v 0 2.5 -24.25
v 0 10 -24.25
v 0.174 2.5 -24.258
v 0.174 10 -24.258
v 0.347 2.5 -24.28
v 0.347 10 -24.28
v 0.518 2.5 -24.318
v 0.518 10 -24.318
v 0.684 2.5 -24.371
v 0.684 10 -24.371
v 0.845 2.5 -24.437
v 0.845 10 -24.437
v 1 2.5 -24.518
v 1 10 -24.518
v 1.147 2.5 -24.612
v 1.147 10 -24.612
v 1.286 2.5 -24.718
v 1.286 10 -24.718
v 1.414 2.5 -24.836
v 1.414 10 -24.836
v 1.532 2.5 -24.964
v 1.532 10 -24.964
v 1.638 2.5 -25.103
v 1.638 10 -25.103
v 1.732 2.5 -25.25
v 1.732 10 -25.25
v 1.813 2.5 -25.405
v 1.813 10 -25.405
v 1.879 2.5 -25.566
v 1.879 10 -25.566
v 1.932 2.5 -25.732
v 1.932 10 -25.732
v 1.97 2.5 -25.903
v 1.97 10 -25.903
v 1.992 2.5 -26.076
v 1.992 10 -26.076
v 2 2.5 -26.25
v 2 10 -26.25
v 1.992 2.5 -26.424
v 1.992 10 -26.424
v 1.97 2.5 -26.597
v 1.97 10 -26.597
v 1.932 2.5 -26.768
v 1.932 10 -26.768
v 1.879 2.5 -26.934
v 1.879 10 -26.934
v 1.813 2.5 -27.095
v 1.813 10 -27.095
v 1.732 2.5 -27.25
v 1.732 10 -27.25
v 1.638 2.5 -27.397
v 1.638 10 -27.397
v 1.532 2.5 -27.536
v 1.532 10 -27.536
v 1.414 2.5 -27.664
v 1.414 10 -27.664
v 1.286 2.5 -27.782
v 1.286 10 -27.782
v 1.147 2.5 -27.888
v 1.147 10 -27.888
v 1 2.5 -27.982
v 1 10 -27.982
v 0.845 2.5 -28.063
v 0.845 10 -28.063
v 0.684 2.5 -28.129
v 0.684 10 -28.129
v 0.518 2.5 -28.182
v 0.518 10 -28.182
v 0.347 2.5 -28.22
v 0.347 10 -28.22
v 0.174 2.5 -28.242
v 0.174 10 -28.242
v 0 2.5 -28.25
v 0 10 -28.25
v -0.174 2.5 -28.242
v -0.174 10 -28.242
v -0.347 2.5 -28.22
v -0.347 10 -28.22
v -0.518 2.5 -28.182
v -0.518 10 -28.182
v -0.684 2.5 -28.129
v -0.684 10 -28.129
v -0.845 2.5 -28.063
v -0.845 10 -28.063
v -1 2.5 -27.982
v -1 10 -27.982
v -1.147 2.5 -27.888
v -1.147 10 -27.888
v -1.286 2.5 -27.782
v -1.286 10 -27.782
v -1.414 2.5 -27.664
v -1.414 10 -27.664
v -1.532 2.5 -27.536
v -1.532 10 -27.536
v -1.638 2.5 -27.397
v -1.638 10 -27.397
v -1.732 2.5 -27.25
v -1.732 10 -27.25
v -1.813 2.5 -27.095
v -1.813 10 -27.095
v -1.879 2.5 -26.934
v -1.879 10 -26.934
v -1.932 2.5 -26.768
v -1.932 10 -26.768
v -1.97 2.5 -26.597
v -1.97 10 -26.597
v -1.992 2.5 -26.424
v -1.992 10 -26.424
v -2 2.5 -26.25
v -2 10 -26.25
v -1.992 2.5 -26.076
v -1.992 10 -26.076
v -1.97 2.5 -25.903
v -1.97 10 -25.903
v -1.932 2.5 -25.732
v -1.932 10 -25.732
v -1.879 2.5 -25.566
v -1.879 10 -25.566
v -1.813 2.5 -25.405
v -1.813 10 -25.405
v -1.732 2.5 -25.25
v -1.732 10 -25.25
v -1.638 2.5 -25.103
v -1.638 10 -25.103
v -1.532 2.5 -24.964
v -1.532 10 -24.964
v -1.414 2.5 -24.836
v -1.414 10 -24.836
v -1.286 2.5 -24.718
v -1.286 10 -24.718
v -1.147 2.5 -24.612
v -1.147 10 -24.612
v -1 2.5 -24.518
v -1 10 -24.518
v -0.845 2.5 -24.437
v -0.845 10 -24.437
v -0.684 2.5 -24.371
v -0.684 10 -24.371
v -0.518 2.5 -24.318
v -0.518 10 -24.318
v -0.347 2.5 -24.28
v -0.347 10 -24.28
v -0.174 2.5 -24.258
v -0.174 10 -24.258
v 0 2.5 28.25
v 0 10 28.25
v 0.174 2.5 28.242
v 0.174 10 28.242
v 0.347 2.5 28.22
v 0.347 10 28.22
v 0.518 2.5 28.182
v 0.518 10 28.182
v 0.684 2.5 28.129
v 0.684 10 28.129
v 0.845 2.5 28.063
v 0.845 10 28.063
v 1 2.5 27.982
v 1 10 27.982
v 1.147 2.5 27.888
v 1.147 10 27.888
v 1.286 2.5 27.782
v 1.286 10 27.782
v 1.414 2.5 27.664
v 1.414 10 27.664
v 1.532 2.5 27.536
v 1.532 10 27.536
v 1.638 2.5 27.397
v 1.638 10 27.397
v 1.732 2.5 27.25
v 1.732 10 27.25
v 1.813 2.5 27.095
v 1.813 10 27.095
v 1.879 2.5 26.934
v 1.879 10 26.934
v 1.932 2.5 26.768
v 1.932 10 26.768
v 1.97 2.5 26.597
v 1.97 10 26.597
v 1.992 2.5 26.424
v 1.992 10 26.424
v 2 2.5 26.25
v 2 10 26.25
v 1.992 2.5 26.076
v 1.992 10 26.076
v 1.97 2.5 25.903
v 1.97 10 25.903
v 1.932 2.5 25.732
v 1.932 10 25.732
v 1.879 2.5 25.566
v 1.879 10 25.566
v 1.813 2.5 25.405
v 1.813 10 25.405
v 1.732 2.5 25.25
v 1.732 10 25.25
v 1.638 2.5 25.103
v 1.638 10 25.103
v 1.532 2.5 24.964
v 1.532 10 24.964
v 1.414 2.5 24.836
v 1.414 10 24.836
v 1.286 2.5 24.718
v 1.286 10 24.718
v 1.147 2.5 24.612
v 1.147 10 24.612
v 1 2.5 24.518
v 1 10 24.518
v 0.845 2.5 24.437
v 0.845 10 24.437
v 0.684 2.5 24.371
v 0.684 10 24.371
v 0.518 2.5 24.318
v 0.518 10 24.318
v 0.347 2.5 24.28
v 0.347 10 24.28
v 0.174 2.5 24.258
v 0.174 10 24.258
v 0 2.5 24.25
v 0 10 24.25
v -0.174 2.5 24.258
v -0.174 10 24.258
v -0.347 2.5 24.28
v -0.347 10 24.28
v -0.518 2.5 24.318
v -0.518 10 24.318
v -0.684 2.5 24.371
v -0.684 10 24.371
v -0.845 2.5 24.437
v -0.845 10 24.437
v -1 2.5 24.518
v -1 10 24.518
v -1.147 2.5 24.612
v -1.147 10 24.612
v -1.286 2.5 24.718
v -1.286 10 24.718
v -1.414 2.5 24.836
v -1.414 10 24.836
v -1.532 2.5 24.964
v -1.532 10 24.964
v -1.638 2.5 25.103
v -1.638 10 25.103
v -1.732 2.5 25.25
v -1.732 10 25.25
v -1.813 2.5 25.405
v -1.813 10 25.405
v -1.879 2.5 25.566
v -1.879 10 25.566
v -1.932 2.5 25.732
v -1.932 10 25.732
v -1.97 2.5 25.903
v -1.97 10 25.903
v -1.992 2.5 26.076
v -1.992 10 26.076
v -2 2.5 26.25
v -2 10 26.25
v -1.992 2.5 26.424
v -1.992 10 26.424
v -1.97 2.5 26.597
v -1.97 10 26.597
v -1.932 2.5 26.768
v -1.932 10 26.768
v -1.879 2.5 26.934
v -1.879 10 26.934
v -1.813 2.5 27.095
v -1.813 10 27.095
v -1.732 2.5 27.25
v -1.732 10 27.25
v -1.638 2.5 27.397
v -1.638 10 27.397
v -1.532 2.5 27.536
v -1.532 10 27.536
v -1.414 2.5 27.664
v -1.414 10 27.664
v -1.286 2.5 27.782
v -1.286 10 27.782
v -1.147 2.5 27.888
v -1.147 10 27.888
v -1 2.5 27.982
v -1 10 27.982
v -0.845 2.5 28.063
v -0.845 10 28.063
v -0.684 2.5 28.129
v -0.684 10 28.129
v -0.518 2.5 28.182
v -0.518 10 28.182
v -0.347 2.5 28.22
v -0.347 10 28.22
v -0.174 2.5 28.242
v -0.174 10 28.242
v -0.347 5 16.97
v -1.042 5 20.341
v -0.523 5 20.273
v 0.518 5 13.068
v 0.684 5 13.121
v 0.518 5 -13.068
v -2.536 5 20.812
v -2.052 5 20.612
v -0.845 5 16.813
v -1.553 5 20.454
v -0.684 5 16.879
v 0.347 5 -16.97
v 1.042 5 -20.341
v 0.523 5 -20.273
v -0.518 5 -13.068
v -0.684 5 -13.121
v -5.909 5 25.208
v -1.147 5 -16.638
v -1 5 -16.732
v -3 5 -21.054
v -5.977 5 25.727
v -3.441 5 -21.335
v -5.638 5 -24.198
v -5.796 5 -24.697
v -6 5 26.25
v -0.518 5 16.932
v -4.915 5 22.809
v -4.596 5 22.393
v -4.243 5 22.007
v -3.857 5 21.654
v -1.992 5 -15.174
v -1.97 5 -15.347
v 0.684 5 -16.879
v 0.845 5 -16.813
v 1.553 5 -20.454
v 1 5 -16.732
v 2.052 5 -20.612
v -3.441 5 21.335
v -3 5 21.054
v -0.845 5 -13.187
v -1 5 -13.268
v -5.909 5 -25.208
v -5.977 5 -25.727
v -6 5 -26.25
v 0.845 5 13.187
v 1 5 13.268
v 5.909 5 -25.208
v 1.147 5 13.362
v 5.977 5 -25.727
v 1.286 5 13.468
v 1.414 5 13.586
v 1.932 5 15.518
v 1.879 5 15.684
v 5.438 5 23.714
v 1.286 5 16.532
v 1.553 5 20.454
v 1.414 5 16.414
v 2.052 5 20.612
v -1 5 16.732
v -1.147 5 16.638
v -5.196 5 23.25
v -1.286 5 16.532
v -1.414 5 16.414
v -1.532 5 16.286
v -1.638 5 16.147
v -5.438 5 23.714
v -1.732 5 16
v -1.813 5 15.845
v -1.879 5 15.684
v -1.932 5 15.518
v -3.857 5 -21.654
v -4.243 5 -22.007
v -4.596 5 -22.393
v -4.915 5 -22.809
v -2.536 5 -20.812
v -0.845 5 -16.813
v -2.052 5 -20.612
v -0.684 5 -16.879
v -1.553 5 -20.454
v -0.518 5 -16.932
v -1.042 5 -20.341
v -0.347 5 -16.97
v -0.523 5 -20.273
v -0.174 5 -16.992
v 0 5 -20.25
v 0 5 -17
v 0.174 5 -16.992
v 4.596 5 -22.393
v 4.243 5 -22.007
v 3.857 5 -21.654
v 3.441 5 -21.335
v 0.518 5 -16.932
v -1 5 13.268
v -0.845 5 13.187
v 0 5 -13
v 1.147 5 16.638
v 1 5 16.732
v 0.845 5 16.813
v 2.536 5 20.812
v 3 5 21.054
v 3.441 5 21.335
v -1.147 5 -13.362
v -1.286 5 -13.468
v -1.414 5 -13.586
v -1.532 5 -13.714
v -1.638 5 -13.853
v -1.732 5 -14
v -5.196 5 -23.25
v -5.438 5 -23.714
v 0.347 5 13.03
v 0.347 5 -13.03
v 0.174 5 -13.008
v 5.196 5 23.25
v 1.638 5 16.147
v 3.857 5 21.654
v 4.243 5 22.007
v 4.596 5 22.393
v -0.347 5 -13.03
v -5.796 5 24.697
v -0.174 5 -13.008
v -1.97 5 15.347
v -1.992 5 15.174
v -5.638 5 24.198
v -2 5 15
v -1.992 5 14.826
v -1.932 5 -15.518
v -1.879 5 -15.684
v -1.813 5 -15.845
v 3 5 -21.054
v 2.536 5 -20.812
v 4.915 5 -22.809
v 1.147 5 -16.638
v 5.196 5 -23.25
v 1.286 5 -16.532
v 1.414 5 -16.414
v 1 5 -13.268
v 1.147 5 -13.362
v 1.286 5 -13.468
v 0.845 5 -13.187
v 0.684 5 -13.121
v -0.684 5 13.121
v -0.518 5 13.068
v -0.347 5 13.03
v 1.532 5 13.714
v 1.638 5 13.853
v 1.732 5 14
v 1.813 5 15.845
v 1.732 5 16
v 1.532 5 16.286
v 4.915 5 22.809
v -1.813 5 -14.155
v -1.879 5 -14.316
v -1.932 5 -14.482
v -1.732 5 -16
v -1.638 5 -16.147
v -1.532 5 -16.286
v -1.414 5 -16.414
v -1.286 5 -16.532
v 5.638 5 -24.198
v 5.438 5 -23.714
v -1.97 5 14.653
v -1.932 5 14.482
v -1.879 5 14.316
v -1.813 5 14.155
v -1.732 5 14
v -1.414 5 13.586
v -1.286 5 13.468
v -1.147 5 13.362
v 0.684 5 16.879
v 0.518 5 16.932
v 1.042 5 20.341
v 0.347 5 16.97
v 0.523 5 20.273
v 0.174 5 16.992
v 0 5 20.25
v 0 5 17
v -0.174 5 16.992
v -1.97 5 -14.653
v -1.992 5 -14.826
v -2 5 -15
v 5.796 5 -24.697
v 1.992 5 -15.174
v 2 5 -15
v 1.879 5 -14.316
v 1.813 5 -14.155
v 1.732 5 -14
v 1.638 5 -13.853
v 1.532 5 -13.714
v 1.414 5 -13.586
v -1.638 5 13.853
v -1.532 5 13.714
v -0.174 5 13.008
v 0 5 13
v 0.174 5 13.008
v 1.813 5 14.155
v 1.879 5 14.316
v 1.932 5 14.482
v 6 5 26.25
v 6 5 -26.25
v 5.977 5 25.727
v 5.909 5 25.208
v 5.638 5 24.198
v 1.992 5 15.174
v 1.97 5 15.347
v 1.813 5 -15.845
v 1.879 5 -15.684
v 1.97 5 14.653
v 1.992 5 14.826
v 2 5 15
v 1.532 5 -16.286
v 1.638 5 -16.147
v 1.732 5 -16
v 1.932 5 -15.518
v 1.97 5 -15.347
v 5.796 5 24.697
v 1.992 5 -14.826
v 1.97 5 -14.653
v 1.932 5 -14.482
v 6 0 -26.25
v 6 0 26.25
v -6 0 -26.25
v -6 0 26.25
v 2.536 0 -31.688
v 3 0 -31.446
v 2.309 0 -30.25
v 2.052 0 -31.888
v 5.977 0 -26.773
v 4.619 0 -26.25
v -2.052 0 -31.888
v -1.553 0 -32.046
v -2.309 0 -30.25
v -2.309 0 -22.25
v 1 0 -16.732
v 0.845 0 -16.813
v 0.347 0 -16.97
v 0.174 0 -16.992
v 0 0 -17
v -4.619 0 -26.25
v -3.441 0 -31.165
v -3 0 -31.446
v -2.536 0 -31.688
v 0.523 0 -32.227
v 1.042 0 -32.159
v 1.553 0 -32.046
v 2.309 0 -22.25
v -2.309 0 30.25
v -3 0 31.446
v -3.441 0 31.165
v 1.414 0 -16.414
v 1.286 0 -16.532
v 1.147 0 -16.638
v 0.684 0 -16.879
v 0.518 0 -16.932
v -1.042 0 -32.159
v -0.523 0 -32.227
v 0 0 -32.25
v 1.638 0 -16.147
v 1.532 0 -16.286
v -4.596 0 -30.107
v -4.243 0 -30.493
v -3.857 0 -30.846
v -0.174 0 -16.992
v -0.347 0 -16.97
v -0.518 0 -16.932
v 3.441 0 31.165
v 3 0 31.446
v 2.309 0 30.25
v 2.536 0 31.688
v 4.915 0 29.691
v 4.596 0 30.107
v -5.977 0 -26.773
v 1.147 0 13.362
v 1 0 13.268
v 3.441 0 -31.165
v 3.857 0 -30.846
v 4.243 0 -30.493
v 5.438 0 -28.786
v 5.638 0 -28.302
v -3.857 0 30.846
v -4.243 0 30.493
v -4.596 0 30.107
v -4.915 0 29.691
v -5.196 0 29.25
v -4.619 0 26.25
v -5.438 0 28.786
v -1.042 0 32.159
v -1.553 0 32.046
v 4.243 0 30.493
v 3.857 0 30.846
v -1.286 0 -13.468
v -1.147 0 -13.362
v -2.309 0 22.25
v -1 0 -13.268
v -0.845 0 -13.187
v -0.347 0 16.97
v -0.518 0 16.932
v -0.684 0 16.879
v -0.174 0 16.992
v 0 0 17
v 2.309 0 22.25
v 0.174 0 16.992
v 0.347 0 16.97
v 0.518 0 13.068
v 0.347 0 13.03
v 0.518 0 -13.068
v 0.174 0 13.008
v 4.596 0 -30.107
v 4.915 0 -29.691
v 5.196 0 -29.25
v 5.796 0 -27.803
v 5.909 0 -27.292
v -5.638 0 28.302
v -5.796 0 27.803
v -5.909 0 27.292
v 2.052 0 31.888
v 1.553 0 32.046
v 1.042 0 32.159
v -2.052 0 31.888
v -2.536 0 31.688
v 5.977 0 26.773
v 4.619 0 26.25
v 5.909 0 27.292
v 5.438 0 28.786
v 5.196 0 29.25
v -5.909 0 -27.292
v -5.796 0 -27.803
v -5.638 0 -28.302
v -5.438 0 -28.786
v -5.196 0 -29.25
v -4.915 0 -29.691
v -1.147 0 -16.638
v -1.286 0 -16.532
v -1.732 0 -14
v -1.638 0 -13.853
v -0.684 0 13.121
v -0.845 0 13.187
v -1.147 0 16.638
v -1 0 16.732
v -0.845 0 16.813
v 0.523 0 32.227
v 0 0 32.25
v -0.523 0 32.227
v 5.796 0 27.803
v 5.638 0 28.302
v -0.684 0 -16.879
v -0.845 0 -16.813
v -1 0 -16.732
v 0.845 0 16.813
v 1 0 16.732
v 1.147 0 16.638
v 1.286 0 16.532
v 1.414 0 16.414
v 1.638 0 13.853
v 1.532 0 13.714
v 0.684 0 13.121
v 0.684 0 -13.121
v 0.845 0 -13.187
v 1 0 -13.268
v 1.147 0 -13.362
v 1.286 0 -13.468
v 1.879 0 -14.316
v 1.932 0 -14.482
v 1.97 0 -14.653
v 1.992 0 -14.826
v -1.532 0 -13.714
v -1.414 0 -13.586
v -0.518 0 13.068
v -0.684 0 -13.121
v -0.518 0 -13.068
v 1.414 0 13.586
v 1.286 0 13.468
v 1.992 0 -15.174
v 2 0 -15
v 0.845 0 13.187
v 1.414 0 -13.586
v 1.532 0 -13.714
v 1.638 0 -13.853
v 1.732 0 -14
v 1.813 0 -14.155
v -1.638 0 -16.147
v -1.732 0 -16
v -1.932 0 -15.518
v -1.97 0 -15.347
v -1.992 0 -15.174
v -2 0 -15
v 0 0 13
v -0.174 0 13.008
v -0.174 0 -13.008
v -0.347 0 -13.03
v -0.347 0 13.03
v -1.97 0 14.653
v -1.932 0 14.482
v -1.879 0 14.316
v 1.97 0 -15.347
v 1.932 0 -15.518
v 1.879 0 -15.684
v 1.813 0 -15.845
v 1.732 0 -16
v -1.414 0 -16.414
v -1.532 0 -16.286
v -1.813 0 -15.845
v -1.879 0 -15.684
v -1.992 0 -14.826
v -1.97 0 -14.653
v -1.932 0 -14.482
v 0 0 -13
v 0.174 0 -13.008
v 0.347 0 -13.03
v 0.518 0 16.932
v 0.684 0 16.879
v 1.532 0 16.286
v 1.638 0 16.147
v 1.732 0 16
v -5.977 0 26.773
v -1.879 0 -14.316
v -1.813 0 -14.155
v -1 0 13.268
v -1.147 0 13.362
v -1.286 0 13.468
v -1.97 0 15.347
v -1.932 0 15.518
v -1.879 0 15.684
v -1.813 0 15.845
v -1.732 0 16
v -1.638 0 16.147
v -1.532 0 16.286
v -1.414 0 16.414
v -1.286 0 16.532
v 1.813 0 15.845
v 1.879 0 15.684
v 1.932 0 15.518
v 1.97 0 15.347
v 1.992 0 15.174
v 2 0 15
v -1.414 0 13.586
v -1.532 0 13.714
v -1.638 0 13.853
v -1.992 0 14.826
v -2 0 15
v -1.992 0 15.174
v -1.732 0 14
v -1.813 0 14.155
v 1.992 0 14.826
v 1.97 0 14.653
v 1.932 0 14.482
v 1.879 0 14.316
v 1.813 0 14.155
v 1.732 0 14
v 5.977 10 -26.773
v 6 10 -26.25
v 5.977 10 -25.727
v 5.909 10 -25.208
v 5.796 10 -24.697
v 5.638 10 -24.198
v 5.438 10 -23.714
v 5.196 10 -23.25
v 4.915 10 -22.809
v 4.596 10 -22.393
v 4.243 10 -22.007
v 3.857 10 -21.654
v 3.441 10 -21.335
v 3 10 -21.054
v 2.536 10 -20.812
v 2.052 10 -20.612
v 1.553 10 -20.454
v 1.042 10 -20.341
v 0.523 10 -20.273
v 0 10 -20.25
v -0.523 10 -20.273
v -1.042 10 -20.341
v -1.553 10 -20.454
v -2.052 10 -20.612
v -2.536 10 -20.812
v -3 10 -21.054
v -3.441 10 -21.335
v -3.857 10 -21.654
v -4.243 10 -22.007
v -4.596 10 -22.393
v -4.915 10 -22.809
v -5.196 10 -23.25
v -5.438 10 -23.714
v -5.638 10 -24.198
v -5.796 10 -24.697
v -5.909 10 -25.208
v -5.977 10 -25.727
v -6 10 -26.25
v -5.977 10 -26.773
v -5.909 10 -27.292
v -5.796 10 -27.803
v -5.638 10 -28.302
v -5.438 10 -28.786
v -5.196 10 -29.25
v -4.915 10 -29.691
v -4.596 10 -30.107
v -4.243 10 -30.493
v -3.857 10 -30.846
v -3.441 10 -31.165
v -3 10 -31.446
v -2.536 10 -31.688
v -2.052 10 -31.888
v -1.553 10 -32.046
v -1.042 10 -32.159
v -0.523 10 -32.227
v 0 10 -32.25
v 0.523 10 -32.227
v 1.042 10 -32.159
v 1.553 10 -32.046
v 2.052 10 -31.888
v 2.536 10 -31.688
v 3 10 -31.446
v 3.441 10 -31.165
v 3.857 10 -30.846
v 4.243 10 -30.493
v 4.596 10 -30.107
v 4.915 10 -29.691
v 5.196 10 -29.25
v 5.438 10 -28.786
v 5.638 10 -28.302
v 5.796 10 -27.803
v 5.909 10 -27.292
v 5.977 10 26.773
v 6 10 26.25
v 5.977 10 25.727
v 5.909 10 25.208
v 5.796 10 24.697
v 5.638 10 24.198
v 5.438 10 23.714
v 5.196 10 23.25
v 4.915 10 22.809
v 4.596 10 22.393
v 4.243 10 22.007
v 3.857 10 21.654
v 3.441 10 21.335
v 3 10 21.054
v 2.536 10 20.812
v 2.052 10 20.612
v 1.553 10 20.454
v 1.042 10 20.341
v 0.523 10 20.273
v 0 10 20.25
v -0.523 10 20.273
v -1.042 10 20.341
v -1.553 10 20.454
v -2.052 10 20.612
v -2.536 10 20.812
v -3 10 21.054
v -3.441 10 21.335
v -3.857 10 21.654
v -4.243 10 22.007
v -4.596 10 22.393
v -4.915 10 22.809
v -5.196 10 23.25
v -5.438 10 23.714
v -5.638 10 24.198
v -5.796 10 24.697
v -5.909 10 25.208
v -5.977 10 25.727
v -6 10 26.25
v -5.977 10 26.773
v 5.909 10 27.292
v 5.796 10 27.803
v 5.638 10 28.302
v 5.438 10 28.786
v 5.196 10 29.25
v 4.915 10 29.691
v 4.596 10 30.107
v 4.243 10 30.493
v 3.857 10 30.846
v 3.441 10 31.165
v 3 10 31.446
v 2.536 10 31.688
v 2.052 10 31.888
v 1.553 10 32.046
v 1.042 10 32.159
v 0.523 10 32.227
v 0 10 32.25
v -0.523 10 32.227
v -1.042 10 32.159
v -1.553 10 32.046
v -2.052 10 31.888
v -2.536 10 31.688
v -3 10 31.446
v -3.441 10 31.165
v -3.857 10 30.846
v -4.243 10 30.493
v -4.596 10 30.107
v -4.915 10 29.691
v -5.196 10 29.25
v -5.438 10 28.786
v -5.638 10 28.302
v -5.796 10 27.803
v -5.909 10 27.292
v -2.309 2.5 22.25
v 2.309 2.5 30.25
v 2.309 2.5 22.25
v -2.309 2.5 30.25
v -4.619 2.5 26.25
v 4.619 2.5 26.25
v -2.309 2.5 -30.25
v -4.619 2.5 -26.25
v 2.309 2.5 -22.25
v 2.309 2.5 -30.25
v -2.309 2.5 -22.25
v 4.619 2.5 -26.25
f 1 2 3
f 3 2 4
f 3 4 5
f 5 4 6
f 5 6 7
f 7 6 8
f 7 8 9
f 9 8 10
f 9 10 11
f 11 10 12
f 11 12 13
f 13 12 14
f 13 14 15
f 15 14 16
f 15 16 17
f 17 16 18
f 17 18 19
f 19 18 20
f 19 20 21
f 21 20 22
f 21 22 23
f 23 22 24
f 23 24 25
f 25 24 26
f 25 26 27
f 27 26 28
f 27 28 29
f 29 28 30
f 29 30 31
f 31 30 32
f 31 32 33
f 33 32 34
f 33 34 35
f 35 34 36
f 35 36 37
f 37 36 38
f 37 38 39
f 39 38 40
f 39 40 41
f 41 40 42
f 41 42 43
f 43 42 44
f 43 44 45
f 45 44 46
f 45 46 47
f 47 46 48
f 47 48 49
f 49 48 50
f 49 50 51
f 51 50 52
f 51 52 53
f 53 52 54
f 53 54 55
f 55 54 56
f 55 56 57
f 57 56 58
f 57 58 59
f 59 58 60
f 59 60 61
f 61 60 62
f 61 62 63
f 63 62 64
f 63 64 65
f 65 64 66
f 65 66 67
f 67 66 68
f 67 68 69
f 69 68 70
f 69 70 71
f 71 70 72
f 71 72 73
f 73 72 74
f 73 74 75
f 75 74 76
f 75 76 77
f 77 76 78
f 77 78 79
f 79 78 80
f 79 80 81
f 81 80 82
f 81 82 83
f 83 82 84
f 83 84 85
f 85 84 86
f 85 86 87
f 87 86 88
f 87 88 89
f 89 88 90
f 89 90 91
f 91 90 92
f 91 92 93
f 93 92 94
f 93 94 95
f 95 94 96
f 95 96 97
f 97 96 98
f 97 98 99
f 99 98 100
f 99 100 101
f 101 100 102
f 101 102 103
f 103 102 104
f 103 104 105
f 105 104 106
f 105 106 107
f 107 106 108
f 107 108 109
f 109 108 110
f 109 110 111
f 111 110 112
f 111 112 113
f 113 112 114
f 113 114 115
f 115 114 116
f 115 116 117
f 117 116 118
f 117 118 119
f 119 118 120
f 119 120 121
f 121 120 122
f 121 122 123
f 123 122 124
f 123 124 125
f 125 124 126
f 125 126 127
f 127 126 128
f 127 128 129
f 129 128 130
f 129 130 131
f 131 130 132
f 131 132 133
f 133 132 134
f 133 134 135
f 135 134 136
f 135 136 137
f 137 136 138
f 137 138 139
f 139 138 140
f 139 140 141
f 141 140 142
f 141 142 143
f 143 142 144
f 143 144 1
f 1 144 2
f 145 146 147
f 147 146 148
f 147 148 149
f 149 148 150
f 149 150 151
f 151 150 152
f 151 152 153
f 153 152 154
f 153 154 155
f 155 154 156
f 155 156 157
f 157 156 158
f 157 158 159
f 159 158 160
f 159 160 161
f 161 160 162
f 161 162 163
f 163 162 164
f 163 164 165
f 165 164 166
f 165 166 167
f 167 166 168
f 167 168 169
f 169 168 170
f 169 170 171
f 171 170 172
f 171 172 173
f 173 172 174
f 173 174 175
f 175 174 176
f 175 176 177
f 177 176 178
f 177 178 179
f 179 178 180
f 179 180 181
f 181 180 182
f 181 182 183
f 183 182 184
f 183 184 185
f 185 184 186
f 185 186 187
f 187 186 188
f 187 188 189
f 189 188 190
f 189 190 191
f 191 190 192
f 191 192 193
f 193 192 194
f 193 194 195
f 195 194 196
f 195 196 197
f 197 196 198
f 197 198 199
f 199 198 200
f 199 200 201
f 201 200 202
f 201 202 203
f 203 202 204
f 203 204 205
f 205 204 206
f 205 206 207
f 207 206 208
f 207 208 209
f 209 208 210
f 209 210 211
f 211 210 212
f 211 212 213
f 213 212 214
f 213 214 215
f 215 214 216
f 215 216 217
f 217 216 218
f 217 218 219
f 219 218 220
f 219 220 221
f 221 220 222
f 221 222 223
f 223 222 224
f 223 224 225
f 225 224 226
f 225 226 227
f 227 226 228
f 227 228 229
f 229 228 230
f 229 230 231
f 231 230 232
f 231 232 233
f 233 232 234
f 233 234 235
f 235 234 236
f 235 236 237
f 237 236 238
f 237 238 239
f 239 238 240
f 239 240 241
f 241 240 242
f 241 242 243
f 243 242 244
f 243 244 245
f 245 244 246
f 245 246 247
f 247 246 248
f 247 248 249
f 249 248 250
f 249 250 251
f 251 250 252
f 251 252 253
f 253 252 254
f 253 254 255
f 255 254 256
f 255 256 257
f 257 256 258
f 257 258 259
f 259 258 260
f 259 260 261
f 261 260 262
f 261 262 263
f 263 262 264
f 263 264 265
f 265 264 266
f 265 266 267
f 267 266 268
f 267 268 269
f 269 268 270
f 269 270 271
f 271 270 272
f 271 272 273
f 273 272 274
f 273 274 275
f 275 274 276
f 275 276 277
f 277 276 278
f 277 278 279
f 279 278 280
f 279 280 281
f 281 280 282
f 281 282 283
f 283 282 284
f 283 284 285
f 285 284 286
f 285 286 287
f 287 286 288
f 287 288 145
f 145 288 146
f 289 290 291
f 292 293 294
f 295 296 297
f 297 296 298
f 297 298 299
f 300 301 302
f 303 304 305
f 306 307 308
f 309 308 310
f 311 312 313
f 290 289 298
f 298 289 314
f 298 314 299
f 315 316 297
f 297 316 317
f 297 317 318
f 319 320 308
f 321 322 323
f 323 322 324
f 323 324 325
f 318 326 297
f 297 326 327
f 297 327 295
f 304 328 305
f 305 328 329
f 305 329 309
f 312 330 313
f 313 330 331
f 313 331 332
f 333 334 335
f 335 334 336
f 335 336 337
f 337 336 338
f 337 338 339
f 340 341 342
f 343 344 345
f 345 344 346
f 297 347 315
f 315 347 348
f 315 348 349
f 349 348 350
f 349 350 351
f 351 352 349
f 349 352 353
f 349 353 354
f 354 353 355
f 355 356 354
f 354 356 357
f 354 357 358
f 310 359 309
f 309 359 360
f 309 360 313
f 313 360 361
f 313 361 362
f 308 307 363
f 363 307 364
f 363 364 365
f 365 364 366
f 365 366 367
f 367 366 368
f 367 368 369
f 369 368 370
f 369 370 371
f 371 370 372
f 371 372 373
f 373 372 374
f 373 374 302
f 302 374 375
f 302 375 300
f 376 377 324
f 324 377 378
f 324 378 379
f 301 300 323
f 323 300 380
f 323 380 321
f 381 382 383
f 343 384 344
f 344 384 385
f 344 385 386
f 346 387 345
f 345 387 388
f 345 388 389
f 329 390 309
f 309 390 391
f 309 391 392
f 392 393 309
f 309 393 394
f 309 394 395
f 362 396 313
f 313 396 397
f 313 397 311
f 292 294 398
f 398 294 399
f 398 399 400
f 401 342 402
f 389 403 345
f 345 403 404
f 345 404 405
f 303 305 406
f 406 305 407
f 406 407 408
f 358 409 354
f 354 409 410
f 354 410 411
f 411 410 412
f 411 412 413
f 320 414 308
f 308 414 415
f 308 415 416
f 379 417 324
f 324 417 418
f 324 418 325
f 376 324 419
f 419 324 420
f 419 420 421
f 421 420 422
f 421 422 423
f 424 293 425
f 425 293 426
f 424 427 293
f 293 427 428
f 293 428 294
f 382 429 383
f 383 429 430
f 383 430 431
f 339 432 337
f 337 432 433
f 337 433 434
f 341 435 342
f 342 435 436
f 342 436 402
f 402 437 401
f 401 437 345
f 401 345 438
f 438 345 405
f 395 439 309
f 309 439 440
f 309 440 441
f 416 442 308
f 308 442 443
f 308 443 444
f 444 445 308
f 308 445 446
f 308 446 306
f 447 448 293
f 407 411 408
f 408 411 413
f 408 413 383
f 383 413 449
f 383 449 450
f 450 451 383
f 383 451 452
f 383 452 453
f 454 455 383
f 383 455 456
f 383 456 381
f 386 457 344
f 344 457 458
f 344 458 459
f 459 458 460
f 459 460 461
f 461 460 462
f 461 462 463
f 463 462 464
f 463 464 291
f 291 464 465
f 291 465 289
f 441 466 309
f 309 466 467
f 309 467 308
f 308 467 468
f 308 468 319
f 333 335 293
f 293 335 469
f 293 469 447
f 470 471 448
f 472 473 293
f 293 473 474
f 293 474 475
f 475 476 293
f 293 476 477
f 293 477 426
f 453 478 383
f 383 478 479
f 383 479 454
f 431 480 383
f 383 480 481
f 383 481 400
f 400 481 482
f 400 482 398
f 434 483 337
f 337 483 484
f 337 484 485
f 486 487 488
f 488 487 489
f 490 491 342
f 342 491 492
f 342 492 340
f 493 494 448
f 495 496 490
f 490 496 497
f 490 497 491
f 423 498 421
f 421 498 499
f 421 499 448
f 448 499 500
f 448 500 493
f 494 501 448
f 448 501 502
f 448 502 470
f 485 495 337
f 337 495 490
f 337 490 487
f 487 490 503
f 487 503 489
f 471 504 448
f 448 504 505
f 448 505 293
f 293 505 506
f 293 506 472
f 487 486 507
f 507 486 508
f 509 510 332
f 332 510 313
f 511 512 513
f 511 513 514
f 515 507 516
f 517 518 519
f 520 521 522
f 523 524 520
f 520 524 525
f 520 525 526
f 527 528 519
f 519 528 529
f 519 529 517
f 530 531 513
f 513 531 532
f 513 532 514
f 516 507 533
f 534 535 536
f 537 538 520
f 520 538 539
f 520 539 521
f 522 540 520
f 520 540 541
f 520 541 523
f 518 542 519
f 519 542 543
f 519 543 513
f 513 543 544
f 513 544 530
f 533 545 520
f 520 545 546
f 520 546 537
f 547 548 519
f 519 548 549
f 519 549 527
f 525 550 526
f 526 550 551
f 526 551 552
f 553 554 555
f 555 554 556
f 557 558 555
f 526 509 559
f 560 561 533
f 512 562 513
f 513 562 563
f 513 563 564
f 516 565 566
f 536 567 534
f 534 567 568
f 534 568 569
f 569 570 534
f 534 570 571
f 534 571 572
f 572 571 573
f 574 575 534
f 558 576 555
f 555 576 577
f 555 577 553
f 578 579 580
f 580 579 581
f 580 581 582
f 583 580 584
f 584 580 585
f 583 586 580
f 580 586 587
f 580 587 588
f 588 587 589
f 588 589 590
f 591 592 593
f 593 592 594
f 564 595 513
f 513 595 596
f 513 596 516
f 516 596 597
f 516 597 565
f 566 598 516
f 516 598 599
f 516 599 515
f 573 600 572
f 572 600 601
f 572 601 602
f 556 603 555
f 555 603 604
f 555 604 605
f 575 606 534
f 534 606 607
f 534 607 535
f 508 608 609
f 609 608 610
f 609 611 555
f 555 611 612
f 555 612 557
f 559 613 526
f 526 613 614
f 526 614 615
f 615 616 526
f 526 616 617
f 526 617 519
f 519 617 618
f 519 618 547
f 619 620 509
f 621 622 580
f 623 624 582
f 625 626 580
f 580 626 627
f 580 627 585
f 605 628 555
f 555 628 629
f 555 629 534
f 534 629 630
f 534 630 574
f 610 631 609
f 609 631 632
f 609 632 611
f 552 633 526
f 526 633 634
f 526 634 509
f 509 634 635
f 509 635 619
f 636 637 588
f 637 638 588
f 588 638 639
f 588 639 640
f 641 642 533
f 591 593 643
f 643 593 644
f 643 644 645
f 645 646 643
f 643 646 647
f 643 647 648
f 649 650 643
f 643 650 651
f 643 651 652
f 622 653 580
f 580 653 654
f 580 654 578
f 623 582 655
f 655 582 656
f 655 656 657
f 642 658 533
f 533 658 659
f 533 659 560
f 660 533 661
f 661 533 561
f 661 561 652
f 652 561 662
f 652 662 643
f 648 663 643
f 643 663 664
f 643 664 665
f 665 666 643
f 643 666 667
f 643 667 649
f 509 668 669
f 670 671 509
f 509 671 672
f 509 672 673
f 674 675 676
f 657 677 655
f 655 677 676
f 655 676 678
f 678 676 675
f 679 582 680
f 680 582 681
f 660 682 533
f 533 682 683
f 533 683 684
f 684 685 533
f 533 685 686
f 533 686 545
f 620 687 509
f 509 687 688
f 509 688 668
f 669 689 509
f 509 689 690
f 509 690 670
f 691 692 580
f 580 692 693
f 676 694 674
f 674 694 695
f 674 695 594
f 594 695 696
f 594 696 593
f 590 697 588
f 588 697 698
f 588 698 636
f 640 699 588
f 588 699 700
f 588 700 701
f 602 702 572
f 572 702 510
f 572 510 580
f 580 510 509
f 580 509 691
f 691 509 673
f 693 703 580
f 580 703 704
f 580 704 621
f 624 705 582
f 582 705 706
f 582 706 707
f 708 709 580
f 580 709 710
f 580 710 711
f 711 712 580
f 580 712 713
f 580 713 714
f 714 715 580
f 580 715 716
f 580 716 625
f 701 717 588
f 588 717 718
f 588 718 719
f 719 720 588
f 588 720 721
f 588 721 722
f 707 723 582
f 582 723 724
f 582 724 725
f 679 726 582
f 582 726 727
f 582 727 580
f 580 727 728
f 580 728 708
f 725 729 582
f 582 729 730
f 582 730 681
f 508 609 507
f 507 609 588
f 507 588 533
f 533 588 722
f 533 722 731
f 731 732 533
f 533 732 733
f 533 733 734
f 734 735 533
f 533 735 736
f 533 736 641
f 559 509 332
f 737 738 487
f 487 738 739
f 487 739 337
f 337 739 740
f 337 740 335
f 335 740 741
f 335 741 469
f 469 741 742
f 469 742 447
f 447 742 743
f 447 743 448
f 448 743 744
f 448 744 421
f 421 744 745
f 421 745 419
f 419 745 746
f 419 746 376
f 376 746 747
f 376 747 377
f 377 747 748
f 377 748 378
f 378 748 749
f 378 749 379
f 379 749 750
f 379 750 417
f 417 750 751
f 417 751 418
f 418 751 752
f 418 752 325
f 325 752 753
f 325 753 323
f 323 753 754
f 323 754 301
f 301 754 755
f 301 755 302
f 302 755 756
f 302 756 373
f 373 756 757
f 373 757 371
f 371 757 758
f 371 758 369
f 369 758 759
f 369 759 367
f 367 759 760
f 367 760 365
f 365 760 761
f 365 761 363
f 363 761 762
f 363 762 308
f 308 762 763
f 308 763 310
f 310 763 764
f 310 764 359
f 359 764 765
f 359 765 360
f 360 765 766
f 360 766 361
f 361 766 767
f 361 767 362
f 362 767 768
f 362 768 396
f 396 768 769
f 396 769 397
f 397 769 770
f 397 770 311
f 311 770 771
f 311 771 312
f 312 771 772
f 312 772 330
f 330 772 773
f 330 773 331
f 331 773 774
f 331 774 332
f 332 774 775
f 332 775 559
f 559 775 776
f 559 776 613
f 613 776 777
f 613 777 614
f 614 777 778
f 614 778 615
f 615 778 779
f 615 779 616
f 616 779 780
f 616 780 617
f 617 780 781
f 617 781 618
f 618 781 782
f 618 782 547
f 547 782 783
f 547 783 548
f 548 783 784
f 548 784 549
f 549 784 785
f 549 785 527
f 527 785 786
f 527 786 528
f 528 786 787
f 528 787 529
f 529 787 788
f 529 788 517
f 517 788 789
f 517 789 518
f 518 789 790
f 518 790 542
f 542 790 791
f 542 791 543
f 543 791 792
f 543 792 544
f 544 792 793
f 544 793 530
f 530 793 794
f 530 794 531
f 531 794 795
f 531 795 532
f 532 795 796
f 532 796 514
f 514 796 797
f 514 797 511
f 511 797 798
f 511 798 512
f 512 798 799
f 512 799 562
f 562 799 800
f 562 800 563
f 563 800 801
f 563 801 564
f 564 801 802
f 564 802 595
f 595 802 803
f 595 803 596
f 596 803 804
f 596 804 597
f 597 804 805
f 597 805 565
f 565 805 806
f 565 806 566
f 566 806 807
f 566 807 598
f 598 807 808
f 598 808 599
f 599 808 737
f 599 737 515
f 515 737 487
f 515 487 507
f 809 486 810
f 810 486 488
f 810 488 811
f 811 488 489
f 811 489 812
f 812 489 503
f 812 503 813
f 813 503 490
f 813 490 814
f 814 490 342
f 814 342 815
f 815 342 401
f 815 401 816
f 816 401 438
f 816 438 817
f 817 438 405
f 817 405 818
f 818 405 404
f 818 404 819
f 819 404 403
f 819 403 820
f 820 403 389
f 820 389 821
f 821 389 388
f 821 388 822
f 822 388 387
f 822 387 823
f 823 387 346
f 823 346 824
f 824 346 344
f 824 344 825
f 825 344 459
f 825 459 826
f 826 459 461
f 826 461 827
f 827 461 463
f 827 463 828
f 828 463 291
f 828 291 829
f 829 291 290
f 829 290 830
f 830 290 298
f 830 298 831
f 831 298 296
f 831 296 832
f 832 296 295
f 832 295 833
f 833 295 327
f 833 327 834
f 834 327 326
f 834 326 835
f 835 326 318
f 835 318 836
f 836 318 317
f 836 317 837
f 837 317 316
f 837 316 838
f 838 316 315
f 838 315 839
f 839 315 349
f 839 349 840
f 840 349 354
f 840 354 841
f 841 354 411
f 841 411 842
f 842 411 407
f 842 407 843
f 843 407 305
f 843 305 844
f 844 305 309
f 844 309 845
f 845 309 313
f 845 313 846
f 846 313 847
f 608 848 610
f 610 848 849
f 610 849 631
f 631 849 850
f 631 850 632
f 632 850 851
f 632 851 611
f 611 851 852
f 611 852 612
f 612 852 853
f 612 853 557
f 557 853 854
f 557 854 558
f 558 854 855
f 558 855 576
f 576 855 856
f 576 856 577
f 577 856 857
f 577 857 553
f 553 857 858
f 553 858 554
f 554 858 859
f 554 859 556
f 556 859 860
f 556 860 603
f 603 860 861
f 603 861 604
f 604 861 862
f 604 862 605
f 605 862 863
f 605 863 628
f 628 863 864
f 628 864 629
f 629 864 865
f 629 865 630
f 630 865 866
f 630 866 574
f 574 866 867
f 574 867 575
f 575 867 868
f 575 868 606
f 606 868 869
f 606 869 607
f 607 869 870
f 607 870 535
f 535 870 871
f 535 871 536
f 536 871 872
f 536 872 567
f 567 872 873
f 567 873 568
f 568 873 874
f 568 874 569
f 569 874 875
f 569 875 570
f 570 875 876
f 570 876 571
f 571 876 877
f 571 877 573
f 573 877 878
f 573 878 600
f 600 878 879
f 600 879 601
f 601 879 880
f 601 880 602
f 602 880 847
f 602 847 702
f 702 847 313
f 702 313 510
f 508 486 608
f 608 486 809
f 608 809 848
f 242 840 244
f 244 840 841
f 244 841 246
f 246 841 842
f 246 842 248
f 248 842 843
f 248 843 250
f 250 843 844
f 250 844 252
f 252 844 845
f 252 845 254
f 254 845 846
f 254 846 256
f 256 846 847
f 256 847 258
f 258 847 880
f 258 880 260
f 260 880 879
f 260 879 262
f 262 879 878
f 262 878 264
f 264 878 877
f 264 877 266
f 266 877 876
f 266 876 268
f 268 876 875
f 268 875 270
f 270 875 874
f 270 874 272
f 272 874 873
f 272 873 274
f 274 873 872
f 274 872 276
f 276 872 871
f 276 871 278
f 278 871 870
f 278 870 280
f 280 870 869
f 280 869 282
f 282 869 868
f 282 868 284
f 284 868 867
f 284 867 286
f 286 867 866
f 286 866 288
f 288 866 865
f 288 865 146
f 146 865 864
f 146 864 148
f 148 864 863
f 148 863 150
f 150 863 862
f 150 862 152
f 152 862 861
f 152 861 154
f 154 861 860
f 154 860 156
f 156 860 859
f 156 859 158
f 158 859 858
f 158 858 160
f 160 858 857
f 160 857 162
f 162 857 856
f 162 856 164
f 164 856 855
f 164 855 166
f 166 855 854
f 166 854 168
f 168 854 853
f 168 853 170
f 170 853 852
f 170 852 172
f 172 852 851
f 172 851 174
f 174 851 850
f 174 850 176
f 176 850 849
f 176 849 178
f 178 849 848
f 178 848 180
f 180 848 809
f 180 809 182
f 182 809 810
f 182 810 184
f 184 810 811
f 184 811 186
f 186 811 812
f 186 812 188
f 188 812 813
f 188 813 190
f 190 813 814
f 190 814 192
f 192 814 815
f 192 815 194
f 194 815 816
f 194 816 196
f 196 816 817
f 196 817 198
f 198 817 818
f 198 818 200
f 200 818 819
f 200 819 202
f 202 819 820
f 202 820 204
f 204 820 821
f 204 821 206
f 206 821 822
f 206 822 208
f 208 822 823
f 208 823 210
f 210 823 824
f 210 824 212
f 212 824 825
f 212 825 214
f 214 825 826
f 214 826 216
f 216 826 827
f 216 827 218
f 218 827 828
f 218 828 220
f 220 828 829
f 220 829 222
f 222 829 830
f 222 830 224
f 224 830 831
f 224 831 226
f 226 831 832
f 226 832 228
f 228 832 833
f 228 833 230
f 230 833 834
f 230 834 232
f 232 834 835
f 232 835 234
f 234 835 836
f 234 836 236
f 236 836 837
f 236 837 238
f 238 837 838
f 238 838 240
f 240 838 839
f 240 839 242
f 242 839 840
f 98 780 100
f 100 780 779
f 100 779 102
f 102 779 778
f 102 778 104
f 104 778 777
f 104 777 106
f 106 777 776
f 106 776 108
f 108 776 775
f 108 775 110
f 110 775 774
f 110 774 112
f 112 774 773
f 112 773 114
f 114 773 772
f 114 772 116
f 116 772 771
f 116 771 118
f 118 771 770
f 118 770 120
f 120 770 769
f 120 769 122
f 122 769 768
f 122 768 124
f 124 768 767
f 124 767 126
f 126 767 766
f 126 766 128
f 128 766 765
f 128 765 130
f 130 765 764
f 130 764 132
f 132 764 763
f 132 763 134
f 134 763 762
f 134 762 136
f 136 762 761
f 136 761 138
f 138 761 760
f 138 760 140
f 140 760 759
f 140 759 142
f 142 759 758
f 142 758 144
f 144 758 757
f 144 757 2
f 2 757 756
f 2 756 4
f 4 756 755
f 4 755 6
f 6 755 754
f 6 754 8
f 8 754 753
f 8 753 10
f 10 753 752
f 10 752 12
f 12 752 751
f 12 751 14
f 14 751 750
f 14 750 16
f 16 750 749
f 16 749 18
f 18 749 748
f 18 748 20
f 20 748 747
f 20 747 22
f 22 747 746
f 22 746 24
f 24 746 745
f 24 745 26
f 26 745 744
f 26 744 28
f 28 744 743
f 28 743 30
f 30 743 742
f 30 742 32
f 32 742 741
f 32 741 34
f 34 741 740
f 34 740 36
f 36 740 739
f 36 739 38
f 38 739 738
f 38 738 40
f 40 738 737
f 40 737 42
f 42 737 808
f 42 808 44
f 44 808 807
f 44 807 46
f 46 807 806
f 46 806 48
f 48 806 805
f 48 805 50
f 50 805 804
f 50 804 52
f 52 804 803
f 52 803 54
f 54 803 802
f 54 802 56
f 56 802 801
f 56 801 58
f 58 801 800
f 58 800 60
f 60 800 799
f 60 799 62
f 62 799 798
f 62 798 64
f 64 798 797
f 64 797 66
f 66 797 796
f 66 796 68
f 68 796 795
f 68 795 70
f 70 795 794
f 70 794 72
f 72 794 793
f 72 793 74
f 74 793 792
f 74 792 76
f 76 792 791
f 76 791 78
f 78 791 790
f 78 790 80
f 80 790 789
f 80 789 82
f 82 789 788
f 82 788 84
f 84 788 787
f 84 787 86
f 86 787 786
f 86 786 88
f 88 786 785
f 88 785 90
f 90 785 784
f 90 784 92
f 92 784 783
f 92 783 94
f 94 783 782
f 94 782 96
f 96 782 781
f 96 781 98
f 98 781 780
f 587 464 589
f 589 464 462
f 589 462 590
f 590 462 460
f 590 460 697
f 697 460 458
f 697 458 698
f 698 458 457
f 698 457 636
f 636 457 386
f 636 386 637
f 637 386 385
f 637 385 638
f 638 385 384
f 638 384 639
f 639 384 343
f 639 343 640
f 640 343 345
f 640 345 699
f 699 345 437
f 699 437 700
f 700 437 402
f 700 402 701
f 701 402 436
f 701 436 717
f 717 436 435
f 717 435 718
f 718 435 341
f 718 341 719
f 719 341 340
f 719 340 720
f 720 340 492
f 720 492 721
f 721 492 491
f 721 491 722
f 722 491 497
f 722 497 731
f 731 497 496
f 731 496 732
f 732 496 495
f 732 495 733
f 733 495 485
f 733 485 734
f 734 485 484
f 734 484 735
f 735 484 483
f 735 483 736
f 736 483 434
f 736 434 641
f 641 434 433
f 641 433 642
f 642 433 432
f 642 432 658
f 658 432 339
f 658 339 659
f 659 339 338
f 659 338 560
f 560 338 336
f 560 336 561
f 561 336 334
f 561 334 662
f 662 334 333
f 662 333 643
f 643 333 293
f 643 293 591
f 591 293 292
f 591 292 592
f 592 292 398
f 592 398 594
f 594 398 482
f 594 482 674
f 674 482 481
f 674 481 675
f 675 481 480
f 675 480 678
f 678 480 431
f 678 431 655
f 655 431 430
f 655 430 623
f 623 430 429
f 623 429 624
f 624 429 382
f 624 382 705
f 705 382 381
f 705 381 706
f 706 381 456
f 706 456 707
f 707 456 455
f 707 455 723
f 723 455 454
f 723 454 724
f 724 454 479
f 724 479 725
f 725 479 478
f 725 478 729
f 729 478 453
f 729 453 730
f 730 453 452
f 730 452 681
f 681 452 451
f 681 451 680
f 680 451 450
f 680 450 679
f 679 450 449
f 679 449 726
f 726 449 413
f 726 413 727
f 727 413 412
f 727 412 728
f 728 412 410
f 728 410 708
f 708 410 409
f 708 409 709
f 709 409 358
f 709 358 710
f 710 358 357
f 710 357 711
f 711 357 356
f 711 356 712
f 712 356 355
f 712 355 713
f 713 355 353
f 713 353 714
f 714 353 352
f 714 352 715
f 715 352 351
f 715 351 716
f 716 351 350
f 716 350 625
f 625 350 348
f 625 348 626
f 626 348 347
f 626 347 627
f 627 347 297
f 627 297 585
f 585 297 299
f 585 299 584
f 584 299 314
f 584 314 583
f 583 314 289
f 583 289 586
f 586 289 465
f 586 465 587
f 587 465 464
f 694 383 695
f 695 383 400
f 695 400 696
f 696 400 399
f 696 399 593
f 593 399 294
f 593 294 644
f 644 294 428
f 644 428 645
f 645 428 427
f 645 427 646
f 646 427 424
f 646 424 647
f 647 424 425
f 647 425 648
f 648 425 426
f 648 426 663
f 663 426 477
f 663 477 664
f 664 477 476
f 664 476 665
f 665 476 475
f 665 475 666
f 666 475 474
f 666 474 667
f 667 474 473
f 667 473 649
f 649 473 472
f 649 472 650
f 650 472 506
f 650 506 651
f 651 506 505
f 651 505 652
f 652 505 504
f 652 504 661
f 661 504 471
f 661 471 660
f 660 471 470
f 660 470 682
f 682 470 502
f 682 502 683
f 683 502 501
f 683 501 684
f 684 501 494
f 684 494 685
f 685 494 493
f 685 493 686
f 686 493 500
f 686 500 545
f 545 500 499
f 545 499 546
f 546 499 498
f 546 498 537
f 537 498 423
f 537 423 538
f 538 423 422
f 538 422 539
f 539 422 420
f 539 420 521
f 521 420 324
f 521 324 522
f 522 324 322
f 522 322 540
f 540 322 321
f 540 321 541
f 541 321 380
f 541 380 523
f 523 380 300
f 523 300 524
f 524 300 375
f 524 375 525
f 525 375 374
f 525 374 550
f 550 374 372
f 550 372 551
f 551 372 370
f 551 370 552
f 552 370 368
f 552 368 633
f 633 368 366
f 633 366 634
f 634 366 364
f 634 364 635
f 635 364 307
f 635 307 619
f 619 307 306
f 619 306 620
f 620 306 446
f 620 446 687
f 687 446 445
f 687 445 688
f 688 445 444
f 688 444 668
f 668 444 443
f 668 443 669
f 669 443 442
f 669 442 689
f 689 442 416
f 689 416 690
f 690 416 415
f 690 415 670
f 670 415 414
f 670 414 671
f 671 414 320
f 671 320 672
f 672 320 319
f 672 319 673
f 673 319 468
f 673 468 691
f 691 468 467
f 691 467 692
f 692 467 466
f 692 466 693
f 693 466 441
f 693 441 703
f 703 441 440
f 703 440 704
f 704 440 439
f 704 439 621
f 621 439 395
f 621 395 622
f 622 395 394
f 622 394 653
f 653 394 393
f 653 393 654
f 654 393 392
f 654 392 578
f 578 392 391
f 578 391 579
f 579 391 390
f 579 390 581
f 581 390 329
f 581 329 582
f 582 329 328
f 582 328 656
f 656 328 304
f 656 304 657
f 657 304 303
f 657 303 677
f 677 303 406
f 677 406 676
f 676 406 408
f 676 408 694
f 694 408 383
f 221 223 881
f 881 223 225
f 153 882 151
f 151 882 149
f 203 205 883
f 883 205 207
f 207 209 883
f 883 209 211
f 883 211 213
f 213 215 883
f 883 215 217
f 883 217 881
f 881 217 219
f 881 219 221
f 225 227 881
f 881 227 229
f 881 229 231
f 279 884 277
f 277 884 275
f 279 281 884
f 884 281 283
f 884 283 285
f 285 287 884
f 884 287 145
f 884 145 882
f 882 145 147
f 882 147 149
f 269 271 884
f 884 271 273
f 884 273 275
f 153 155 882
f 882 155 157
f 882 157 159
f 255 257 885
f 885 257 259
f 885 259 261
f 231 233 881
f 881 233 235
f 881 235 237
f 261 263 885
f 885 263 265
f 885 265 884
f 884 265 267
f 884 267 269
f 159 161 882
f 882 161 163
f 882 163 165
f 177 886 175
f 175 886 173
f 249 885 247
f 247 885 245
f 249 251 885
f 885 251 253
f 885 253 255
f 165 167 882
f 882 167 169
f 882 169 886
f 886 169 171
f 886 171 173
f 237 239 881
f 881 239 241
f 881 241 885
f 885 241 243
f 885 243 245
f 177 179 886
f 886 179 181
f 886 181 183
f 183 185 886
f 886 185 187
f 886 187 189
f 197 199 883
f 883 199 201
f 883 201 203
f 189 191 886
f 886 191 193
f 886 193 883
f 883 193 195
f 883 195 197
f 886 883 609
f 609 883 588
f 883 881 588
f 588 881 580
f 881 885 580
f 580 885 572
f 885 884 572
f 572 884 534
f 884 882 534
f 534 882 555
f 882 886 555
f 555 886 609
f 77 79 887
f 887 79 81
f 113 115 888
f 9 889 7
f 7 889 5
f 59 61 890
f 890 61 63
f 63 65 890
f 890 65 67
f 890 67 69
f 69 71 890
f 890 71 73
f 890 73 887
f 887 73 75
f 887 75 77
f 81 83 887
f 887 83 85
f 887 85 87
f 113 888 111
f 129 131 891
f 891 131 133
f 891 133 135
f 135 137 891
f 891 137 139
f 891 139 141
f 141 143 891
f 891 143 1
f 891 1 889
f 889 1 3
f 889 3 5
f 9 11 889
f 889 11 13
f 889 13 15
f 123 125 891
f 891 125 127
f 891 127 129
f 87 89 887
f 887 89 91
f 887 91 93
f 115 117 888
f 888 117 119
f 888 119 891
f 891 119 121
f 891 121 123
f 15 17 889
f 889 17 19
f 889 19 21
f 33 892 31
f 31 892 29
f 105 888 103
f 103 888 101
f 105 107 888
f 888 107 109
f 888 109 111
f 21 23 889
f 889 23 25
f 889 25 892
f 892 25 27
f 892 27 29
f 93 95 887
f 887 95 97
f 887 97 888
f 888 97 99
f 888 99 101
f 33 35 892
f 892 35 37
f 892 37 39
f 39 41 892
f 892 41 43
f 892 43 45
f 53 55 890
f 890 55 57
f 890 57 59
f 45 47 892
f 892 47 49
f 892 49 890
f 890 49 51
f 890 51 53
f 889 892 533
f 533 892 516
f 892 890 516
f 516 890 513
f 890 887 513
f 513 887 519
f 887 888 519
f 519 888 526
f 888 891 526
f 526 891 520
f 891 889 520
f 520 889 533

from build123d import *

# Parameters (mm, degrees)
SKETCH1_W           = 12
SKETCH1_H           = 64.5
BOSS_EXTRUDE1_DEPTH = 5
FILLET1_R           = 6
SKETCH2_R           = 2
CUT_EXTRUDE1_DEPTH  = 34.182261828
BOSS_EXTRUDE2_START = 5
SKETCH3_R           = 6
SKETCH3_R_2         = 2
BOSS_EXTRUDE2_DEPTH = 5
SKETCH4_R           = 2
CUT_EXTRUDE2_DEPTH  = 34.182261828
CUT_EXTRUDE3_DEPTH  = 2.5


with BuildPart() as part:
    # Sketch1 → Boss-Extrude1 (new body)
    with BuildSketch(Plane(origin=(0, 0, 0), x_dir=(1, 0, 0), z_dir=(0, 1, 0))):
        Rectangle(SKETCH1_W, SKETCH1_H)
    extrude(amount=BOSS_EXTRUDE1_DEPTH)

    # Fillet1
    fillet1_edges = [part.edges().sort_by_distance(p)[0] for p in [
        (-6, 2.5, -32.25),
        (6, 2.5, -32.25),
        (-6, 2.5, 32.25),
        (6, 2.5, 32.25),
    ]]
    fillet(fillet1_edges, radius=FILLET1_R - 0.0001)  # a hair under: the kernel refuses the full size

    # Sketch2 → Cut-Extrude1 (cut, through all)
    with BuildSketch(Plane(origin=(0, 5, 0), x_dir=(1, 0, 0), z_dir=(0, 1, 0))):
        with Locations(Location((0, -26.25, 0), (0, 0, 270))):
            Circle(SKETCH2_R)
        with Locations(Location((0, 26.25, 0), (0, 0, 270))):
            Circle(SKETCH2_R)
    extrude(amount=-CUT_EXTRUDE1_DEPTH, mode=Mode.SUBTRACT)

    # Sketch3 → Boss-Extrude2 (add)
    # profile 1 of 2: a face of its own
    with BuildSketch(Plane(origin=(0, 5, 0), x_dir=(1, 0, 0), z_dir=(0, 1, 0)).offset(BOSS_EXTRUDE2_START)):
        with Locations(Location((0, -26.25, 0), (0, 0, 270))):
            Circle(SKETCH3_R)
        with Locations(Location((0, -26.25, 0), (0, 0, 270))):
            Circle(SKETCH3_R_2, mode=Mode.SUBTRACT)
    # profile 2 of 2: a face of its own
    with BuildSketch(Plane(origin=(0, 5, 0), x_dir=(1, 0, 0), z_dir=(0, 1, 0)).offset(BOSS_EXTRUDE2_START)):
        with Locations(Location((0, 26.25, 0), (0, 0, 90))):
            Circle(SKETCH3_R)
        with Locations(Location((0, 26.25, 0), (0, 0, 270))):
            Circle(SKETCH3_R_2, mode=Mode.SUBTRACT)
    extrude(amount=-BOSS_EXTRUDE2_DEPTH)

    # Sketch4 → Cut-Extrude2 (cut, through all)
    with BuildSketch(Plane(origin=(0, 5, 0), x_dir=(1, 0, 0), z_dir=(0, 1, 0))):
        with Locations(Location((0, 15, 0), (0, 0, 270))):
            Circle(SKETCH4_R)
        with Locations(Location((0, -15, 0), (0, 0, 270))):
            Circle(SKETCH4_R)
    extrude(amount=-CUT_EXTRUDE2_DEPTH, mode=Mode.SUBTRACT)

    # Sketch5 → Cut-Extrude3 (cut)
    with BuildSketch(Plane.XZ):
        Polygon((4.618802154, 26.25), (2.309401077, 30.25), (-2.309401077, 30.25), (-4.618802154, 26.25), (-2.309401077, 22.25), (2.309401077, 22.25), align=None)
        Polygon((2.309401077, -22.25), (-2.309401077, -22.25), (-4.618802154, -26.25), (-2.309401077, -30.25), (2.309401077, -30.25), (4.618802154, -26.25), align=None)
    extrude(amount=-CUT_EXTRUDE3_DEPTH, mode=Mode.SUBTRACT)


solid = part.part
